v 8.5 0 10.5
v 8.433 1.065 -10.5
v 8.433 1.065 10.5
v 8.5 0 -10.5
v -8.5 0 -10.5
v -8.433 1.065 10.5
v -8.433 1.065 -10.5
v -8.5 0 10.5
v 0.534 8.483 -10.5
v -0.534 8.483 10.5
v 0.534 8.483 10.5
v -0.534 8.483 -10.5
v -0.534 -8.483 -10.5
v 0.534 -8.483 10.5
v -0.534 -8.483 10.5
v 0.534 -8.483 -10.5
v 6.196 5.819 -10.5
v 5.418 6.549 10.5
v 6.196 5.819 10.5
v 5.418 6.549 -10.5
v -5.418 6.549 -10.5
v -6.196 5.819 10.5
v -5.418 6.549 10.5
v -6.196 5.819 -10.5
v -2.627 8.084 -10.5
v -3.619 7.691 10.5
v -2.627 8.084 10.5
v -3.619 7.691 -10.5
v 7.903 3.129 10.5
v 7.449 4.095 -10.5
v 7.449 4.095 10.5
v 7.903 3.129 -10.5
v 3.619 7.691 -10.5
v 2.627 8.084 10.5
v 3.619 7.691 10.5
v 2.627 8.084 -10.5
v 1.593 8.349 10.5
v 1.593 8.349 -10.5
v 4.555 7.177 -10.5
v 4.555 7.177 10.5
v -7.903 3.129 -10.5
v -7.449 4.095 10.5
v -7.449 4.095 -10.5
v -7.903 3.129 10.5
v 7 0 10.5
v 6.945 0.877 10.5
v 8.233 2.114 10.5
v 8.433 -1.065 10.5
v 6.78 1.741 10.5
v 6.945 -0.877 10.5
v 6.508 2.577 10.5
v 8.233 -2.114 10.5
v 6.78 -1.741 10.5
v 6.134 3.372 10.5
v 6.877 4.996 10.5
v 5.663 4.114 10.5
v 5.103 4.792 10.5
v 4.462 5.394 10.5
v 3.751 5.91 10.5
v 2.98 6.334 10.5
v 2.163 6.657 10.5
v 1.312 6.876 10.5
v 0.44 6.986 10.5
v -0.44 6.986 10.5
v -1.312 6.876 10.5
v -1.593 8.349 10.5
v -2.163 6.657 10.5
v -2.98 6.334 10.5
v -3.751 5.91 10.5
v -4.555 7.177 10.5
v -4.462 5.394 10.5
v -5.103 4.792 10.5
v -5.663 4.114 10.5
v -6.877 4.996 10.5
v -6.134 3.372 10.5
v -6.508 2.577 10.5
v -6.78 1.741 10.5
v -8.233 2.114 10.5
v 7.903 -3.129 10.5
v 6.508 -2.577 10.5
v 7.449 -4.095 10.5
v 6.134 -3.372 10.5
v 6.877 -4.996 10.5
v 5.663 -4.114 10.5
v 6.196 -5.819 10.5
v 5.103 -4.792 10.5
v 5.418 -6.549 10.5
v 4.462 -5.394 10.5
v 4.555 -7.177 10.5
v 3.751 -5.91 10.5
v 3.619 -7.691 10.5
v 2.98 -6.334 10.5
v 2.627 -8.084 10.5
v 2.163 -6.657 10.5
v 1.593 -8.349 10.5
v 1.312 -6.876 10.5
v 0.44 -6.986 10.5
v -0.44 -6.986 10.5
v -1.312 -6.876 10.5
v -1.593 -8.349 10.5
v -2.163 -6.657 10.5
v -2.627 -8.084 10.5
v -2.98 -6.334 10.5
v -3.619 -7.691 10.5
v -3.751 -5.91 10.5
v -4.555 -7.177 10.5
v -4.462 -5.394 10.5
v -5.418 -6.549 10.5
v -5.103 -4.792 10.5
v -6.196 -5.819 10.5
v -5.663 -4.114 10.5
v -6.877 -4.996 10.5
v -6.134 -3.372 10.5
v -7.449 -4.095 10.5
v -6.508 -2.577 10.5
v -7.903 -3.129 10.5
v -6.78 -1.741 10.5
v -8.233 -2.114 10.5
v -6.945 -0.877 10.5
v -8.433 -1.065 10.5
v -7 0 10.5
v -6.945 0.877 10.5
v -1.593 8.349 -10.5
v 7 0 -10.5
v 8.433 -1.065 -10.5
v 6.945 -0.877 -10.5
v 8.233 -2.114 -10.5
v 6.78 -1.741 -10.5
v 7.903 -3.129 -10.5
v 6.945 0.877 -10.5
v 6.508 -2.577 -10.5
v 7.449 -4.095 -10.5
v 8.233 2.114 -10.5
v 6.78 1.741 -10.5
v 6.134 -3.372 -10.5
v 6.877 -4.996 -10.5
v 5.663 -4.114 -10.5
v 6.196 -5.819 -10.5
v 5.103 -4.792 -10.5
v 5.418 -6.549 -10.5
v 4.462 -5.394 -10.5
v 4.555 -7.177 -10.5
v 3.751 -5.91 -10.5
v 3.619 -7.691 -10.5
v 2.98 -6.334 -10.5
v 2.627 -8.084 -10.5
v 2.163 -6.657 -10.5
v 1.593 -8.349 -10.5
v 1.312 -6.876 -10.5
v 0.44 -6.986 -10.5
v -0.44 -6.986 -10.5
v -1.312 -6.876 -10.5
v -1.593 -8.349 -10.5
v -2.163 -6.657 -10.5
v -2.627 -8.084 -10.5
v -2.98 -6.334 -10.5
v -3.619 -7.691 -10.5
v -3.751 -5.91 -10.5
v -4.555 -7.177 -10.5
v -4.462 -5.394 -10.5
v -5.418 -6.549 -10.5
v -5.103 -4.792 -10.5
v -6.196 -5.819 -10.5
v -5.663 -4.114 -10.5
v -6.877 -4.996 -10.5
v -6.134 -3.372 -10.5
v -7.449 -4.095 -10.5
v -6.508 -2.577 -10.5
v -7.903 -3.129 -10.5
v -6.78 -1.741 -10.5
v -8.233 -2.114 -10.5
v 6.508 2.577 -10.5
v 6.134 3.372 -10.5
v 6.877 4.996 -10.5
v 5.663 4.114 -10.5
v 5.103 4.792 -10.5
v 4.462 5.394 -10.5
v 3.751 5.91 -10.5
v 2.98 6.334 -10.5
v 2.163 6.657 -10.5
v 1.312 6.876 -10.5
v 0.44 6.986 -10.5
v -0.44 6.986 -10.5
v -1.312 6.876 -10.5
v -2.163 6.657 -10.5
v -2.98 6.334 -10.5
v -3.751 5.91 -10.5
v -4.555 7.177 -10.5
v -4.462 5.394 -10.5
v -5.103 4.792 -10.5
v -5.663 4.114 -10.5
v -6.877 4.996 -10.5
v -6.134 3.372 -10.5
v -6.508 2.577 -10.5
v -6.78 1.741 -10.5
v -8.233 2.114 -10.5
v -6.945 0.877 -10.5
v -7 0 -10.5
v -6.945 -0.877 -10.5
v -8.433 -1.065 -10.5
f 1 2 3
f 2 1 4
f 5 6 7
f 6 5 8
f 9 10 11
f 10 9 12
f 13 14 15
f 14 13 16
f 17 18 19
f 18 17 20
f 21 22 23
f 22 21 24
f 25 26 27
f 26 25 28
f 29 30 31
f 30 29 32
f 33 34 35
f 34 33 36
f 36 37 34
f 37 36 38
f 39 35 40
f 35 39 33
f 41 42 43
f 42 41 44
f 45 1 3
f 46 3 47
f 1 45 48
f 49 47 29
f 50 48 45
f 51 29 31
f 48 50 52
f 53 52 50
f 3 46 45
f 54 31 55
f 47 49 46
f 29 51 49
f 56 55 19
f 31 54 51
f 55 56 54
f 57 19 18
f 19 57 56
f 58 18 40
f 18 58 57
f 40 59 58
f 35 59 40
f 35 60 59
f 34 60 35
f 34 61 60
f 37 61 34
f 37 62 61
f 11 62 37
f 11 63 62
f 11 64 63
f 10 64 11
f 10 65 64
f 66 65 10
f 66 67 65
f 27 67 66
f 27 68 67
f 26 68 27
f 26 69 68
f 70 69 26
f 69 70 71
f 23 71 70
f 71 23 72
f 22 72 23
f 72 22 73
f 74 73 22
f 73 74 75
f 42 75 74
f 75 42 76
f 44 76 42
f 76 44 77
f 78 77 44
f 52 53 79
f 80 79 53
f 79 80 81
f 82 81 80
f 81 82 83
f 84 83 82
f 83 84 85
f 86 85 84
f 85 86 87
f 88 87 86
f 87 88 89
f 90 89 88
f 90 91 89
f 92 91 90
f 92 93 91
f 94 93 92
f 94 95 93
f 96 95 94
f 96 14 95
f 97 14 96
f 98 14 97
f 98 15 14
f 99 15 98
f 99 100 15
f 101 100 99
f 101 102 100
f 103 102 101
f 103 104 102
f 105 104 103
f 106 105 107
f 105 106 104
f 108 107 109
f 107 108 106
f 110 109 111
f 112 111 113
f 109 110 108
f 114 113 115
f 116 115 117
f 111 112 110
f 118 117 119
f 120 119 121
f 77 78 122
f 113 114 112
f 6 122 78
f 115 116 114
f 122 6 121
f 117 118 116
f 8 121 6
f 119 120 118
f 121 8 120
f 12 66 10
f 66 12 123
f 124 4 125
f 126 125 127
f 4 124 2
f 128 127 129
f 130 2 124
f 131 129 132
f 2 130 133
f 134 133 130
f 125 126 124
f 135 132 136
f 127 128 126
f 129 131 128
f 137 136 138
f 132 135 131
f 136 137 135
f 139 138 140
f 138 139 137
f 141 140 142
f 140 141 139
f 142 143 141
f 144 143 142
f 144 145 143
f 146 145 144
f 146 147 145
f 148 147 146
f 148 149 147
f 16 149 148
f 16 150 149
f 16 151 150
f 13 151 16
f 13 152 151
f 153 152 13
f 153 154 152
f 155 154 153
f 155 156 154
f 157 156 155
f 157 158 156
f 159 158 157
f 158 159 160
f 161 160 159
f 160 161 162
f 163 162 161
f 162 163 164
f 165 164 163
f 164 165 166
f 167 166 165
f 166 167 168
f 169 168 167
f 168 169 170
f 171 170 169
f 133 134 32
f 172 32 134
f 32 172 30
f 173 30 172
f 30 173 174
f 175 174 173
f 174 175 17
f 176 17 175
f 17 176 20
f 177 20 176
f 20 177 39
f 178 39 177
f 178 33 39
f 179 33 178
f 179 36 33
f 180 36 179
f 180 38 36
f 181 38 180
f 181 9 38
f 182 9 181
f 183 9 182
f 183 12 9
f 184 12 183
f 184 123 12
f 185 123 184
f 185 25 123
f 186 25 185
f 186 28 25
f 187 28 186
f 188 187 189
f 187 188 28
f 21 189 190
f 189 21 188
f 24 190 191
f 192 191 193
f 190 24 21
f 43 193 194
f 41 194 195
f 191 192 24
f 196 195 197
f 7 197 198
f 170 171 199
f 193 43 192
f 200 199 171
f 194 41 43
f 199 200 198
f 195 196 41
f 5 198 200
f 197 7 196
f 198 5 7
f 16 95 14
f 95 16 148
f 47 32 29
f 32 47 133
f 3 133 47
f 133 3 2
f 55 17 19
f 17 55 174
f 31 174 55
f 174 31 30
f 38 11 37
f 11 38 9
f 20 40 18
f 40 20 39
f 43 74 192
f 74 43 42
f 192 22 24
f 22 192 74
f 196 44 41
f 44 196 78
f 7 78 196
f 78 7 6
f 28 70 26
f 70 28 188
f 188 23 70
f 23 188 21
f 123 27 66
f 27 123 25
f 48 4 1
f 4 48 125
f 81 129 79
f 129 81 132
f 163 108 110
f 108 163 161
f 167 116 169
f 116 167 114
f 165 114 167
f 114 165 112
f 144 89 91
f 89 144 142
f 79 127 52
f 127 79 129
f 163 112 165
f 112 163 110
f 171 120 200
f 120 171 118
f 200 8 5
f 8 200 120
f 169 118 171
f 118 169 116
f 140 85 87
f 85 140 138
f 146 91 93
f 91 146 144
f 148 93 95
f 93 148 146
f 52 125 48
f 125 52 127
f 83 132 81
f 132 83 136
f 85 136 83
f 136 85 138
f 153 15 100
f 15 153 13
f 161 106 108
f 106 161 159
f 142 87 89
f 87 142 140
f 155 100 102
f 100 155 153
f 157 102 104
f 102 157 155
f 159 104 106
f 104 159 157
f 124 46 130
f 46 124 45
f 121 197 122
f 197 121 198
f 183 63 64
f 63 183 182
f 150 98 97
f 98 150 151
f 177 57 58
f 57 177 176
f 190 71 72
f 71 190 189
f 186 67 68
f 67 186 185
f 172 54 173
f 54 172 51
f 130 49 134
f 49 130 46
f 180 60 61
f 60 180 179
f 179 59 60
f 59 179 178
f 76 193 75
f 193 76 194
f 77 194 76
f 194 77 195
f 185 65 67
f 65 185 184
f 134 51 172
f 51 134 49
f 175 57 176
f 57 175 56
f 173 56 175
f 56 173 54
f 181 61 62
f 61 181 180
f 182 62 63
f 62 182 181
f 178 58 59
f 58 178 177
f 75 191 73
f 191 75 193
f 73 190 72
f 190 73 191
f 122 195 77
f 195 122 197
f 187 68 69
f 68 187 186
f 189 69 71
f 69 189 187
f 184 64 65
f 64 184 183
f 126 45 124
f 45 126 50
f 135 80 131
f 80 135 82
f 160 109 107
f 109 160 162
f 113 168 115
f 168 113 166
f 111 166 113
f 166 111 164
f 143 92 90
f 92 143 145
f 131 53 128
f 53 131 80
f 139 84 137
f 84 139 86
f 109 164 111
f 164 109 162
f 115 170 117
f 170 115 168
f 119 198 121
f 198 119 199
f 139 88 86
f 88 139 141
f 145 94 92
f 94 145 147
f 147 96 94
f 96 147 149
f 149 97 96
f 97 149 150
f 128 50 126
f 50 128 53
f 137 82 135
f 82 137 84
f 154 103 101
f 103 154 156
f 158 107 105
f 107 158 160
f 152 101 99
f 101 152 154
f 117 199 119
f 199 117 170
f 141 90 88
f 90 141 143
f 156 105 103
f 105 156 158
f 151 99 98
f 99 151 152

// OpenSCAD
$fn = 50;


difference() {
	union() {
		translate(v = [0, 0, -10.5000000000]) {
			cylinder(h = 21, r = 8.5000000000);
		}
	}
	union() {
		translate(v = [0, 0, -100.0000000000]) {
			cylinder(h = 200, r = 7);
		}
	}
}
